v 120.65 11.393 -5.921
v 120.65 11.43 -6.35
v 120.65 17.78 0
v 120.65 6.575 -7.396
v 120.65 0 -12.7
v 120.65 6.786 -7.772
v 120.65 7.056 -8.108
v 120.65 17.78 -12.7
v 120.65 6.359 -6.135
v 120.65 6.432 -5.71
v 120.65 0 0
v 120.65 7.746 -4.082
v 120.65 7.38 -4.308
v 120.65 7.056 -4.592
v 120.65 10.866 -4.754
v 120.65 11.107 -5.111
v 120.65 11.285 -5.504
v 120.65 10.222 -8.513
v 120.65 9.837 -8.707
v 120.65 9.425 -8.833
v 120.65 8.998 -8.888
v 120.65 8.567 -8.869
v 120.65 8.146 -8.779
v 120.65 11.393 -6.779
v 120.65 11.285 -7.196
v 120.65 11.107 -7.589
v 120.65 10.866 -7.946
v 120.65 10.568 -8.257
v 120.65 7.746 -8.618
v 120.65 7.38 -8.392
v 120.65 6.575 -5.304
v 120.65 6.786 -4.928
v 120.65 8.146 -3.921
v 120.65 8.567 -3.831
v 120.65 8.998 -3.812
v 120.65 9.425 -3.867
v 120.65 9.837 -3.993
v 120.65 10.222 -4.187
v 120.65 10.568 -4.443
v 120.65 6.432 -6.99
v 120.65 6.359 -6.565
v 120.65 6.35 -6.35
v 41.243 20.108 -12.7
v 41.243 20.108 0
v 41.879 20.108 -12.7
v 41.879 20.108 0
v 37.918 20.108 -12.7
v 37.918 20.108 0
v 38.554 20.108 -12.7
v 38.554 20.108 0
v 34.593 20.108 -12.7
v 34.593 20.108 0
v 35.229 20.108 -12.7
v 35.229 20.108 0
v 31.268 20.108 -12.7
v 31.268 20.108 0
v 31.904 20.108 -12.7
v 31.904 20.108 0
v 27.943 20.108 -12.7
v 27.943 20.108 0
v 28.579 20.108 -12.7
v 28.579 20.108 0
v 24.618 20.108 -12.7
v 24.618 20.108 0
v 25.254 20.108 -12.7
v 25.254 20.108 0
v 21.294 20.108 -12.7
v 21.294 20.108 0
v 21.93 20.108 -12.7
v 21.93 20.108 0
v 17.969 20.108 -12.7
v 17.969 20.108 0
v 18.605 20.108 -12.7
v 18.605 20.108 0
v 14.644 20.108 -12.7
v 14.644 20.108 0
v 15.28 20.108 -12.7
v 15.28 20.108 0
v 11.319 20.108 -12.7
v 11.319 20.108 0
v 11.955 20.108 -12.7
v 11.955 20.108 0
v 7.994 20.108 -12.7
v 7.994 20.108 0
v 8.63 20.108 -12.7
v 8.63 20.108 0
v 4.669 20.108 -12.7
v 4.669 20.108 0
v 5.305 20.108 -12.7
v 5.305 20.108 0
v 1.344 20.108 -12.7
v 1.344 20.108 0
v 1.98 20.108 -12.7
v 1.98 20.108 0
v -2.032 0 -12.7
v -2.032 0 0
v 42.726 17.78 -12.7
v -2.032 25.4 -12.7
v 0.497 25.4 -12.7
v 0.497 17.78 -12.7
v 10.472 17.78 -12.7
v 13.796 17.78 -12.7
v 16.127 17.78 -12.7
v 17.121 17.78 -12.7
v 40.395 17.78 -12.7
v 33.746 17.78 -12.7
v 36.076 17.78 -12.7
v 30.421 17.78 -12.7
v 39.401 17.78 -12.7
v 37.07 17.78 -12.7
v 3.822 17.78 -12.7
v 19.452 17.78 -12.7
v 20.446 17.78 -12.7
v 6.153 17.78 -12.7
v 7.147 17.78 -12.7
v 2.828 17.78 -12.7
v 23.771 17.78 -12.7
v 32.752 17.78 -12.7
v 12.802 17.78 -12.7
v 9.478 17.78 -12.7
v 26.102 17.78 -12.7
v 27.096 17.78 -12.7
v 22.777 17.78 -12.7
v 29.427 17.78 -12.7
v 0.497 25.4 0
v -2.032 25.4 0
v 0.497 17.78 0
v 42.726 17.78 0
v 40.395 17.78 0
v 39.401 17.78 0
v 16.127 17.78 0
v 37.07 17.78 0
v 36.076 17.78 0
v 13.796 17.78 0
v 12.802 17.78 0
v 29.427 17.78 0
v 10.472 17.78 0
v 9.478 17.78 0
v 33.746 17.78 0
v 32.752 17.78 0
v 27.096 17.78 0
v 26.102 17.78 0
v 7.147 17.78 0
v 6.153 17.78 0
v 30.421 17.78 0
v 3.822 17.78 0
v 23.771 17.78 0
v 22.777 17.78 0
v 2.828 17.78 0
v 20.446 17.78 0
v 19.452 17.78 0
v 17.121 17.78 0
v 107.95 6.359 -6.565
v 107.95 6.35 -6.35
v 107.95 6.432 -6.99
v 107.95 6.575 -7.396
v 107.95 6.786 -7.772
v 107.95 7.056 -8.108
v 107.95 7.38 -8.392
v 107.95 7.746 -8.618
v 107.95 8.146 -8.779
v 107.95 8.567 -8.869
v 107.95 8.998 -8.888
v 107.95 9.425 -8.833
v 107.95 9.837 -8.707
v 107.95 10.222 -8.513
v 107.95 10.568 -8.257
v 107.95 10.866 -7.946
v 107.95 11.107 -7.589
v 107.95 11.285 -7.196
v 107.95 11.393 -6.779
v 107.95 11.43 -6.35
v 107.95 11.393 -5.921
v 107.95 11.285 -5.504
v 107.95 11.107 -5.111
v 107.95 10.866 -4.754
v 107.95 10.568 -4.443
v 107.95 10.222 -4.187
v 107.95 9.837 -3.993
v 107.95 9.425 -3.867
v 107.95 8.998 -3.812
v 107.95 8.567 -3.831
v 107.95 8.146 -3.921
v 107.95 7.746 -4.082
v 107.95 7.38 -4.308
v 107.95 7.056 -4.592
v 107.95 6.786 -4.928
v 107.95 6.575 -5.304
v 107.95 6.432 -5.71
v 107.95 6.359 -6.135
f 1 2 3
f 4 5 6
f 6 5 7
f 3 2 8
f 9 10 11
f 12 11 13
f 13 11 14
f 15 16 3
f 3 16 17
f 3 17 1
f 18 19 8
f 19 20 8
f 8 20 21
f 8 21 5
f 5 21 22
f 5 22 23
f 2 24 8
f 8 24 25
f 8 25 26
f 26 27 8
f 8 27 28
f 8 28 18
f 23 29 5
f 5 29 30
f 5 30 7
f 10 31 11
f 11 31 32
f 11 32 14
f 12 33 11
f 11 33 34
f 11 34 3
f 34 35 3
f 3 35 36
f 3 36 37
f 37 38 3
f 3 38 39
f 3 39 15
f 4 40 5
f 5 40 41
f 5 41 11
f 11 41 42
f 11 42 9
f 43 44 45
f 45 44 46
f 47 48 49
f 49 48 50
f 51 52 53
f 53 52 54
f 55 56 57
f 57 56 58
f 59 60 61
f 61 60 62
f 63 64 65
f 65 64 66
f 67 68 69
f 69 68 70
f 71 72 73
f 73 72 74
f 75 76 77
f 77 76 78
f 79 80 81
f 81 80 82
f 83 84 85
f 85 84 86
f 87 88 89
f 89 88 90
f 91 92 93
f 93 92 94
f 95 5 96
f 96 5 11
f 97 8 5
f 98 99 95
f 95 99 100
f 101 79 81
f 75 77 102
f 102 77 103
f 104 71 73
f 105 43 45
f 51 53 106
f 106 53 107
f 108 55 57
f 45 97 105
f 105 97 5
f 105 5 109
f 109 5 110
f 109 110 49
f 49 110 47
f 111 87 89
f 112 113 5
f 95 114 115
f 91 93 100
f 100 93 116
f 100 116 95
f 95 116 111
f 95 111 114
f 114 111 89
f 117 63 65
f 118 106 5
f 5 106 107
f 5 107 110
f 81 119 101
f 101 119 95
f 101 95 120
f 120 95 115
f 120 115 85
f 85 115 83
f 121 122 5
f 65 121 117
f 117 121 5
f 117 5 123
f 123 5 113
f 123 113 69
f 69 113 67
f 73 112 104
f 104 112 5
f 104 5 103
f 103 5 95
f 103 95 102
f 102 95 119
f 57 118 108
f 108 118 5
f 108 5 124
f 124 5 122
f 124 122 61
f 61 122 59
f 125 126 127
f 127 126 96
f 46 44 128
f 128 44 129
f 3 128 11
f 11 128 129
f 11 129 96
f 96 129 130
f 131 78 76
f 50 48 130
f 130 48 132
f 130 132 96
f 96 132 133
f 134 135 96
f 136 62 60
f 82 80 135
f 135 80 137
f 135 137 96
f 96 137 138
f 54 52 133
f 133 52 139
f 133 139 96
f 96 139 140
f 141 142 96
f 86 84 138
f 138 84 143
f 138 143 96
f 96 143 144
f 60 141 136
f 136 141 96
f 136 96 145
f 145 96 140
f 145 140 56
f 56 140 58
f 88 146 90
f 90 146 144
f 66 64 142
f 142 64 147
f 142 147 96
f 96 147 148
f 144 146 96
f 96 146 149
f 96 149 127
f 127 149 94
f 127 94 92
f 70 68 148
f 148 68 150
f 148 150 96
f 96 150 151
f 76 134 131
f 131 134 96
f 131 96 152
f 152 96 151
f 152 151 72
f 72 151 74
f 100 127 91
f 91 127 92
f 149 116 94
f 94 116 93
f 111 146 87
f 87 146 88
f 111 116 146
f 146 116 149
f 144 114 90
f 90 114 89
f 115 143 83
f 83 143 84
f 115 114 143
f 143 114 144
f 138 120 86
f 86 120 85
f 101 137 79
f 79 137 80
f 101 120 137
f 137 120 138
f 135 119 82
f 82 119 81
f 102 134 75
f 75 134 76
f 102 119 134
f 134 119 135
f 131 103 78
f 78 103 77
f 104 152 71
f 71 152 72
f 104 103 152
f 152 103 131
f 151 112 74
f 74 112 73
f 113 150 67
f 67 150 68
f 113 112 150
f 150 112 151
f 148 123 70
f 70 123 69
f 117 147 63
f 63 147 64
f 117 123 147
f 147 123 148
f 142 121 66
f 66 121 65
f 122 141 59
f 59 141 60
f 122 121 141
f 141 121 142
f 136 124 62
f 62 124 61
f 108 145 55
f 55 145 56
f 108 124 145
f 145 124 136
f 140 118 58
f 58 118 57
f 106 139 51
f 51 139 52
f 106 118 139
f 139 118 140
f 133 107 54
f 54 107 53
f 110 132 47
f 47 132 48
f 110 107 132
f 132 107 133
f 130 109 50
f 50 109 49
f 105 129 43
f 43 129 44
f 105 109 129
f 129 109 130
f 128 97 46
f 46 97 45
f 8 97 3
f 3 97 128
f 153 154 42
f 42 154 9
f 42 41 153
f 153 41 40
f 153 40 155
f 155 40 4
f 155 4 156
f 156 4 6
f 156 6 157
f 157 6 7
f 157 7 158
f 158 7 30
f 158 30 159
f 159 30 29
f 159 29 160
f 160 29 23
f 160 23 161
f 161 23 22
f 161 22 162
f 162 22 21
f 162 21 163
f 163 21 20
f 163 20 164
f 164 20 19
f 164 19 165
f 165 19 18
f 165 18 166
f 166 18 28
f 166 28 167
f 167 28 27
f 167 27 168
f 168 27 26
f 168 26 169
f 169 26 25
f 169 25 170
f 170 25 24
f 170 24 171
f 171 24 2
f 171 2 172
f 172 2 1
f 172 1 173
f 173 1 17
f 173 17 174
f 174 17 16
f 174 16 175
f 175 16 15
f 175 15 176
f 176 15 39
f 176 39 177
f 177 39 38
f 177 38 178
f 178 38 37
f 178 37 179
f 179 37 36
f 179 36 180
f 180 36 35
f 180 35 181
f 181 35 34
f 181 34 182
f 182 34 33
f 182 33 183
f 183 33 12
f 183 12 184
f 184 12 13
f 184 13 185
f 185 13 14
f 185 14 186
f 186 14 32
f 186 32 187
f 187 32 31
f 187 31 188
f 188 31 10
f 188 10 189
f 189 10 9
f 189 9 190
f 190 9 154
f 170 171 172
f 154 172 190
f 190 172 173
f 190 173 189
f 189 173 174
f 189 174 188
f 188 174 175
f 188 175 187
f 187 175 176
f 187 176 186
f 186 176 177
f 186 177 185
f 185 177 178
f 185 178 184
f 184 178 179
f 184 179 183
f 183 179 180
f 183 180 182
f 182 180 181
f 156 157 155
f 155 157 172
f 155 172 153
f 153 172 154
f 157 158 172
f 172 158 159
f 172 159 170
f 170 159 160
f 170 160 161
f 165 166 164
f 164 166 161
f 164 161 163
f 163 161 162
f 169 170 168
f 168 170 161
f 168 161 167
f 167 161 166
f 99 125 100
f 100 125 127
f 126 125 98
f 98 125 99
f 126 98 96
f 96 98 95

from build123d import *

# Parameters (mm, degrees)
BLANKSKE_W          = 76.2
BLANKSKE_H          = 20.108333333
BLANK_DEPTH         = 12.7
TOOTHCUTSIM_DEPTH   = 80.825278386
TEETHCUTS_COUNT     = 24
TEETHCUTS_PITCH     = 3.324852221
SKETCH1_W           = 12.7
SKETCH1_H           = 17.78
BOSS_EXTRUDE1_DEPTH = 44.45
SKETCH3_R           = 2.54
CUT_EXTRUDE1_DEPTH  = 12.7
SKETCH4_W           = 0.496986858
SKETCH4_H           = 12.7
BOSS_EXTRUDE2_DEPTH = 7.62
SKETCH5_W           = 12.7
SKETCH5_H           = 25.4
BOSS_EXTRUDE3_DEPTH = 2.032
SKETCH6_W           = 12.7
SKETCH6_H           = 2.328333333
CUT_EXTRUDE2_DEPTH  = 76.962


with BuildPart() as part:
    # BlankSke → Blank (new body)
    with BuildSketch(Plane.XY):
        with Locations((38.1, 10.054166667)):
            Rectangle(BLANKSKE_W, BLANKSKE_H)
    extrude(amount=-BLANK_DEPTH)

    # TooCutSkeSim → ToothCutSim (cut, through all)
    with BuildSketch(Plane.XY):
        Polygon((0.496986858, 17.78), (-0.496986858, 17.78), (-1.353675731, 20.133733333), (1.353675731, 20.133733333), align=None)
    toothcutsim = extrude(amount=-TOOTHCUTSIM_DEPTH, mode=Mode.SUBTRACT)

    # TeethCuts: ToothCutSim ×24
    with Locations(*[(i * TEETHCUTS_PITCH, 0, 0) for i in range(1, TEETHCUTS_COUNT)]):
        add(toothcutsim, mode=Mode.SUBTRACT)

    # Sketch1 → Boss-Extrude1 (add)
    with BuildSketch(Plane(origin=(76.2, 0, 0), x_dir=(0, 0, -1), z_dir=(1, 0, 0))):
        with Locations((6.35, 8.89)):
            Rectangle(SKETCH1_W, SKETCH1_H)
    extrude(amount=BOSS_EXTRUDE1_DEPTH)

    # Sketch3 → Cut-Extrude1 (cut)
    with BuildSketch(Plane(origin=(120.65, 0, -120.65), x_dir=(0, 0, 1), z_dir=(-1, 0, 0))):
        with Locations(Location((114.3, 8.89, 0), (0, 0, 90))):
            Circle(SKETCH3_R)
    extrude(amount=CUT_EXTRUDE1_DEPTH, mode=Mode.SUBTRACT)

    # Sketch4 → Boss-Extrude2 (add)
    with BuildSketch(Plane(origin=(0, 17.78, 0), x_dir=(1, 0, 0), z_dir=(0, 1, 0))):
        with Locations((0.248493429, 6.35)):
            Rectangle(SKETCH4_W, SKETCH4_H)
    extrude(amount=BOSS_EXTRUDE2_DEPTH)

    # Sketch5 → Boss-Extrude3 (add)
    with BuildSketch(Plane.ZY):
        with Locations((-6.35, 12.7)):
            Rectangle(SKETCH5_W, SKETCH5_H)
    extrude(amount=BOSS_EXTRUDE3_DEPTH)

    # Sketch6 → Cut-Extrude2 (cut)
    with BuildSketch(Plane(origin=(120.65, 0, 0), x_dir=(0, 0, -1), z_dir=(1, 0, 0))):
        with Locations((6.35, 18.944166667)):
            Rectangle(SKETCH6_W, SKETCH6_H)
    extrude(amount=-CUT_EXTRUDE2_DEPTH, mode=Mode.SUBTRACT)


solid = part.part
